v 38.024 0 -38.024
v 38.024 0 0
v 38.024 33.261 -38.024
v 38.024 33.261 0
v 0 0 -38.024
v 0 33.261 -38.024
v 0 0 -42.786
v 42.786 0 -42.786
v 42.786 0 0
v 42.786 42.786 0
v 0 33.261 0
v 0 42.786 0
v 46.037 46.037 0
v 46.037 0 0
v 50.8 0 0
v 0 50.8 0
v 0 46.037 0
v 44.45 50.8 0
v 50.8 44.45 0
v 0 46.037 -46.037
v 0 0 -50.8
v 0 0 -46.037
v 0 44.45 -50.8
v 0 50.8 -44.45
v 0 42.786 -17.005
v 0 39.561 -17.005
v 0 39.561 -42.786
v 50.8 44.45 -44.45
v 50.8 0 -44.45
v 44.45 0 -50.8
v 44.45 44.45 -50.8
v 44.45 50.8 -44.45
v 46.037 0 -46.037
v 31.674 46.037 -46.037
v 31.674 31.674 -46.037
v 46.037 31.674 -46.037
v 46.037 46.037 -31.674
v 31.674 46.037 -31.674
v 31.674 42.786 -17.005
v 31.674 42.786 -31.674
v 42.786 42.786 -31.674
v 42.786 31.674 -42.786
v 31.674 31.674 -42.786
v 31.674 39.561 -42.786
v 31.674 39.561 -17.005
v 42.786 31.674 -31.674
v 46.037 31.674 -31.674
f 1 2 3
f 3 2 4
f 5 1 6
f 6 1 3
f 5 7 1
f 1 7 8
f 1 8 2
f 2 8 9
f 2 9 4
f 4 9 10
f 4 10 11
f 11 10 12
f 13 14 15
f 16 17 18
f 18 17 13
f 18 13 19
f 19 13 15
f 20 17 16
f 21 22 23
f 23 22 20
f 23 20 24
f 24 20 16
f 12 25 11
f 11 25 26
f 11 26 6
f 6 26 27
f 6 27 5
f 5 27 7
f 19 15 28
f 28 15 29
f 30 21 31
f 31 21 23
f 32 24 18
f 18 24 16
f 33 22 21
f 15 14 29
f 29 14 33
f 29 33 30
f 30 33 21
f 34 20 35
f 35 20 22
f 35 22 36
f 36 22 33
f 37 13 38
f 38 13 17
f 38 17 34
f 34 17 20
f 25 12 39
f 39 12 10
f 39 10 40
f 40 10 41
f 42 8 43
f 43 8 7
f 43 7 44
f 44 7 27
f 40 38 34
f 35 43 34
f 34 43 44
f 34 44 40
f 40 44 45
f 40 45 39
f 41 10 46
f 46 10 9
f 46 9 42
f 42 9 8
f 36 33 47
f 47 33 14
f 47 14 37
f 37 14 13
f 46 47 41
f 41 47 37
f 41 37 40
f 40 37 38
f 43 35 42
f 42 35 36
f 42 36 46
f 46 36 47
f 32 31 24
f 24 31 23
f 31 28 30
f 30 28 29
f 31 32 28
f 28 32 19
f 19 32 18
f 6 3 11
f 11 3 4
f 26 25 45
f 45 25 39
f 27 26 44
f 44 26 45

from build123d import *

# Parameters (mm, degrees)
SKETCH4_W               = 50.8
SKETCH4_H               = 50.8
BOSS_EXTRUDE4_DEPTH     = 50.8
SKETCH5_W               = 38.0238
SKETCH5_H               = 38.0238
CUT_EXTRUDE1_DEPTH      = 38.0238
CUT_EXTRUDE2_DEPTH      = 31.6738
CUT_EXTRUDE3_DEPTH      = 88.988181024
CUT_EXTRUDE3_DEPTH_BACK = 31.6738
CUT_EXTRUDE4_DEPTH      = 31.6738
CHAMFER1_SIZE           = 6.35
SKETCH9_W               = 38.0238
SKETCH9_H               = 4.7625
BOSS_EXTRUDE5_DEPTH     = 38.0238
SKETCH10_W              = 25.781
SKETCH10_H              = 3.2258
CUT_EXTRUDE5_DEPTH      = 31.6738


with BuildPart() as part:
    # Sketch4 → Boss-Extrude4 (new body)
    with BuildSketch(Plane(origin=(0, 0, 0), x_dir=(1, 0, 0), z_dir=(0, 1, 0))):
        with Locations((25.4, 25.4)):
            Rectangle(SKETCH4_W, SKETCH4_H)
    extrude(amount=BOSS_EXTRUDE4_DEPTH)

    # Sketch5 → Cut-Extrude1 (cut)
    with BuildSketch(Plane.XZ):
        with Locations((19.0119, -19.0119)):
            Rectangle(SKETCH5_W, SKETCH5_H)
    extrude(amount=-CUT_EXTRUDE1_DEPTH, mode=Mode.SUBTRACT)

    # Sketch6 → Cut-Extrude2 (cut)
    with BuildSketch(Plane.ZY):
        Polygon((-46.0375, 0), (-42.7863, 0), (-42.7863, 42.7863), (0, 42.7863), (0, 46.0375), (-46.0375, 46.0375), align=None)
    extrude(amount=-CUT_EXTRUDE2_DEPTH, mode=Mode.SUBTRACT)

    # Sketch7 → Cut-Extrude3 (cut, two sides: drawn at the far end of the back side and taken through both)
    with BuildSketch(Plane.XY.offset(-CUT_EXTRUDE3_DEPTH_BACK)):
        Polygon((46.0375, 46.0375), (31.6738, 46.0375), (31.6738, 42.7863), (42.7863, 42.7863), (42.7863, 0), (46.0375, 0), align=None)
    extrude(amount=CUT_EXTRUDE3_DEPTH + CUT_EXTRUDE3_DEPTH_BACK, mode=Mode.SUBTRACT)

    # Sketch8 → Cut-Extrude4 (cut)
    with BuildSketch(Plane.XZ):
        Polygon((31.6738, -46.0375), (46.0375, -46.0375), (46.0375, -31.6738), (42.7863, -31.6738), (42.7863, -42.7863), (31.6738, -42.7863), align=None)
    extrude(amount=-CUT_EXTRUDE4_DEPTH, mode=Mode.SUBTRACT)

    # Chamfer1
    chamfer1_edges = [part.edges().sort_by_distance(p)[0] for p in [
        (50.8, 50.8, -25.4),
        (25.4, 50.8, -50.8),
        (50.8, 25.4, -50.8),
    ]]
    chamfer(chamfer1_edges, length=CHAMFER1_SIZE)

    # Sketch9 → Boss-Extrude5 (add)
    with BuildSketch(Plane.ZY.offset(-38.0238)):
        with Locations((-19.0119, 35.64255)):
            Rectangle(SKETCH9_W, SKETCH9_H)
    extrude(amount=BOSS_EXTRUDE5_DEPTH)

    # Sketch10 → Cut-Extrude5 (cut)
    with BuildSketch(Plane.ZY):
        with Locations((-29.8958, 41.1734)):
            Rectangle(SKETCH10_W, SKETCH10_H)
    extrude(amount=-CUT_EXTRUDE5_DEPTH, mode=Mode.SUBTRACT)


solid = part.part
